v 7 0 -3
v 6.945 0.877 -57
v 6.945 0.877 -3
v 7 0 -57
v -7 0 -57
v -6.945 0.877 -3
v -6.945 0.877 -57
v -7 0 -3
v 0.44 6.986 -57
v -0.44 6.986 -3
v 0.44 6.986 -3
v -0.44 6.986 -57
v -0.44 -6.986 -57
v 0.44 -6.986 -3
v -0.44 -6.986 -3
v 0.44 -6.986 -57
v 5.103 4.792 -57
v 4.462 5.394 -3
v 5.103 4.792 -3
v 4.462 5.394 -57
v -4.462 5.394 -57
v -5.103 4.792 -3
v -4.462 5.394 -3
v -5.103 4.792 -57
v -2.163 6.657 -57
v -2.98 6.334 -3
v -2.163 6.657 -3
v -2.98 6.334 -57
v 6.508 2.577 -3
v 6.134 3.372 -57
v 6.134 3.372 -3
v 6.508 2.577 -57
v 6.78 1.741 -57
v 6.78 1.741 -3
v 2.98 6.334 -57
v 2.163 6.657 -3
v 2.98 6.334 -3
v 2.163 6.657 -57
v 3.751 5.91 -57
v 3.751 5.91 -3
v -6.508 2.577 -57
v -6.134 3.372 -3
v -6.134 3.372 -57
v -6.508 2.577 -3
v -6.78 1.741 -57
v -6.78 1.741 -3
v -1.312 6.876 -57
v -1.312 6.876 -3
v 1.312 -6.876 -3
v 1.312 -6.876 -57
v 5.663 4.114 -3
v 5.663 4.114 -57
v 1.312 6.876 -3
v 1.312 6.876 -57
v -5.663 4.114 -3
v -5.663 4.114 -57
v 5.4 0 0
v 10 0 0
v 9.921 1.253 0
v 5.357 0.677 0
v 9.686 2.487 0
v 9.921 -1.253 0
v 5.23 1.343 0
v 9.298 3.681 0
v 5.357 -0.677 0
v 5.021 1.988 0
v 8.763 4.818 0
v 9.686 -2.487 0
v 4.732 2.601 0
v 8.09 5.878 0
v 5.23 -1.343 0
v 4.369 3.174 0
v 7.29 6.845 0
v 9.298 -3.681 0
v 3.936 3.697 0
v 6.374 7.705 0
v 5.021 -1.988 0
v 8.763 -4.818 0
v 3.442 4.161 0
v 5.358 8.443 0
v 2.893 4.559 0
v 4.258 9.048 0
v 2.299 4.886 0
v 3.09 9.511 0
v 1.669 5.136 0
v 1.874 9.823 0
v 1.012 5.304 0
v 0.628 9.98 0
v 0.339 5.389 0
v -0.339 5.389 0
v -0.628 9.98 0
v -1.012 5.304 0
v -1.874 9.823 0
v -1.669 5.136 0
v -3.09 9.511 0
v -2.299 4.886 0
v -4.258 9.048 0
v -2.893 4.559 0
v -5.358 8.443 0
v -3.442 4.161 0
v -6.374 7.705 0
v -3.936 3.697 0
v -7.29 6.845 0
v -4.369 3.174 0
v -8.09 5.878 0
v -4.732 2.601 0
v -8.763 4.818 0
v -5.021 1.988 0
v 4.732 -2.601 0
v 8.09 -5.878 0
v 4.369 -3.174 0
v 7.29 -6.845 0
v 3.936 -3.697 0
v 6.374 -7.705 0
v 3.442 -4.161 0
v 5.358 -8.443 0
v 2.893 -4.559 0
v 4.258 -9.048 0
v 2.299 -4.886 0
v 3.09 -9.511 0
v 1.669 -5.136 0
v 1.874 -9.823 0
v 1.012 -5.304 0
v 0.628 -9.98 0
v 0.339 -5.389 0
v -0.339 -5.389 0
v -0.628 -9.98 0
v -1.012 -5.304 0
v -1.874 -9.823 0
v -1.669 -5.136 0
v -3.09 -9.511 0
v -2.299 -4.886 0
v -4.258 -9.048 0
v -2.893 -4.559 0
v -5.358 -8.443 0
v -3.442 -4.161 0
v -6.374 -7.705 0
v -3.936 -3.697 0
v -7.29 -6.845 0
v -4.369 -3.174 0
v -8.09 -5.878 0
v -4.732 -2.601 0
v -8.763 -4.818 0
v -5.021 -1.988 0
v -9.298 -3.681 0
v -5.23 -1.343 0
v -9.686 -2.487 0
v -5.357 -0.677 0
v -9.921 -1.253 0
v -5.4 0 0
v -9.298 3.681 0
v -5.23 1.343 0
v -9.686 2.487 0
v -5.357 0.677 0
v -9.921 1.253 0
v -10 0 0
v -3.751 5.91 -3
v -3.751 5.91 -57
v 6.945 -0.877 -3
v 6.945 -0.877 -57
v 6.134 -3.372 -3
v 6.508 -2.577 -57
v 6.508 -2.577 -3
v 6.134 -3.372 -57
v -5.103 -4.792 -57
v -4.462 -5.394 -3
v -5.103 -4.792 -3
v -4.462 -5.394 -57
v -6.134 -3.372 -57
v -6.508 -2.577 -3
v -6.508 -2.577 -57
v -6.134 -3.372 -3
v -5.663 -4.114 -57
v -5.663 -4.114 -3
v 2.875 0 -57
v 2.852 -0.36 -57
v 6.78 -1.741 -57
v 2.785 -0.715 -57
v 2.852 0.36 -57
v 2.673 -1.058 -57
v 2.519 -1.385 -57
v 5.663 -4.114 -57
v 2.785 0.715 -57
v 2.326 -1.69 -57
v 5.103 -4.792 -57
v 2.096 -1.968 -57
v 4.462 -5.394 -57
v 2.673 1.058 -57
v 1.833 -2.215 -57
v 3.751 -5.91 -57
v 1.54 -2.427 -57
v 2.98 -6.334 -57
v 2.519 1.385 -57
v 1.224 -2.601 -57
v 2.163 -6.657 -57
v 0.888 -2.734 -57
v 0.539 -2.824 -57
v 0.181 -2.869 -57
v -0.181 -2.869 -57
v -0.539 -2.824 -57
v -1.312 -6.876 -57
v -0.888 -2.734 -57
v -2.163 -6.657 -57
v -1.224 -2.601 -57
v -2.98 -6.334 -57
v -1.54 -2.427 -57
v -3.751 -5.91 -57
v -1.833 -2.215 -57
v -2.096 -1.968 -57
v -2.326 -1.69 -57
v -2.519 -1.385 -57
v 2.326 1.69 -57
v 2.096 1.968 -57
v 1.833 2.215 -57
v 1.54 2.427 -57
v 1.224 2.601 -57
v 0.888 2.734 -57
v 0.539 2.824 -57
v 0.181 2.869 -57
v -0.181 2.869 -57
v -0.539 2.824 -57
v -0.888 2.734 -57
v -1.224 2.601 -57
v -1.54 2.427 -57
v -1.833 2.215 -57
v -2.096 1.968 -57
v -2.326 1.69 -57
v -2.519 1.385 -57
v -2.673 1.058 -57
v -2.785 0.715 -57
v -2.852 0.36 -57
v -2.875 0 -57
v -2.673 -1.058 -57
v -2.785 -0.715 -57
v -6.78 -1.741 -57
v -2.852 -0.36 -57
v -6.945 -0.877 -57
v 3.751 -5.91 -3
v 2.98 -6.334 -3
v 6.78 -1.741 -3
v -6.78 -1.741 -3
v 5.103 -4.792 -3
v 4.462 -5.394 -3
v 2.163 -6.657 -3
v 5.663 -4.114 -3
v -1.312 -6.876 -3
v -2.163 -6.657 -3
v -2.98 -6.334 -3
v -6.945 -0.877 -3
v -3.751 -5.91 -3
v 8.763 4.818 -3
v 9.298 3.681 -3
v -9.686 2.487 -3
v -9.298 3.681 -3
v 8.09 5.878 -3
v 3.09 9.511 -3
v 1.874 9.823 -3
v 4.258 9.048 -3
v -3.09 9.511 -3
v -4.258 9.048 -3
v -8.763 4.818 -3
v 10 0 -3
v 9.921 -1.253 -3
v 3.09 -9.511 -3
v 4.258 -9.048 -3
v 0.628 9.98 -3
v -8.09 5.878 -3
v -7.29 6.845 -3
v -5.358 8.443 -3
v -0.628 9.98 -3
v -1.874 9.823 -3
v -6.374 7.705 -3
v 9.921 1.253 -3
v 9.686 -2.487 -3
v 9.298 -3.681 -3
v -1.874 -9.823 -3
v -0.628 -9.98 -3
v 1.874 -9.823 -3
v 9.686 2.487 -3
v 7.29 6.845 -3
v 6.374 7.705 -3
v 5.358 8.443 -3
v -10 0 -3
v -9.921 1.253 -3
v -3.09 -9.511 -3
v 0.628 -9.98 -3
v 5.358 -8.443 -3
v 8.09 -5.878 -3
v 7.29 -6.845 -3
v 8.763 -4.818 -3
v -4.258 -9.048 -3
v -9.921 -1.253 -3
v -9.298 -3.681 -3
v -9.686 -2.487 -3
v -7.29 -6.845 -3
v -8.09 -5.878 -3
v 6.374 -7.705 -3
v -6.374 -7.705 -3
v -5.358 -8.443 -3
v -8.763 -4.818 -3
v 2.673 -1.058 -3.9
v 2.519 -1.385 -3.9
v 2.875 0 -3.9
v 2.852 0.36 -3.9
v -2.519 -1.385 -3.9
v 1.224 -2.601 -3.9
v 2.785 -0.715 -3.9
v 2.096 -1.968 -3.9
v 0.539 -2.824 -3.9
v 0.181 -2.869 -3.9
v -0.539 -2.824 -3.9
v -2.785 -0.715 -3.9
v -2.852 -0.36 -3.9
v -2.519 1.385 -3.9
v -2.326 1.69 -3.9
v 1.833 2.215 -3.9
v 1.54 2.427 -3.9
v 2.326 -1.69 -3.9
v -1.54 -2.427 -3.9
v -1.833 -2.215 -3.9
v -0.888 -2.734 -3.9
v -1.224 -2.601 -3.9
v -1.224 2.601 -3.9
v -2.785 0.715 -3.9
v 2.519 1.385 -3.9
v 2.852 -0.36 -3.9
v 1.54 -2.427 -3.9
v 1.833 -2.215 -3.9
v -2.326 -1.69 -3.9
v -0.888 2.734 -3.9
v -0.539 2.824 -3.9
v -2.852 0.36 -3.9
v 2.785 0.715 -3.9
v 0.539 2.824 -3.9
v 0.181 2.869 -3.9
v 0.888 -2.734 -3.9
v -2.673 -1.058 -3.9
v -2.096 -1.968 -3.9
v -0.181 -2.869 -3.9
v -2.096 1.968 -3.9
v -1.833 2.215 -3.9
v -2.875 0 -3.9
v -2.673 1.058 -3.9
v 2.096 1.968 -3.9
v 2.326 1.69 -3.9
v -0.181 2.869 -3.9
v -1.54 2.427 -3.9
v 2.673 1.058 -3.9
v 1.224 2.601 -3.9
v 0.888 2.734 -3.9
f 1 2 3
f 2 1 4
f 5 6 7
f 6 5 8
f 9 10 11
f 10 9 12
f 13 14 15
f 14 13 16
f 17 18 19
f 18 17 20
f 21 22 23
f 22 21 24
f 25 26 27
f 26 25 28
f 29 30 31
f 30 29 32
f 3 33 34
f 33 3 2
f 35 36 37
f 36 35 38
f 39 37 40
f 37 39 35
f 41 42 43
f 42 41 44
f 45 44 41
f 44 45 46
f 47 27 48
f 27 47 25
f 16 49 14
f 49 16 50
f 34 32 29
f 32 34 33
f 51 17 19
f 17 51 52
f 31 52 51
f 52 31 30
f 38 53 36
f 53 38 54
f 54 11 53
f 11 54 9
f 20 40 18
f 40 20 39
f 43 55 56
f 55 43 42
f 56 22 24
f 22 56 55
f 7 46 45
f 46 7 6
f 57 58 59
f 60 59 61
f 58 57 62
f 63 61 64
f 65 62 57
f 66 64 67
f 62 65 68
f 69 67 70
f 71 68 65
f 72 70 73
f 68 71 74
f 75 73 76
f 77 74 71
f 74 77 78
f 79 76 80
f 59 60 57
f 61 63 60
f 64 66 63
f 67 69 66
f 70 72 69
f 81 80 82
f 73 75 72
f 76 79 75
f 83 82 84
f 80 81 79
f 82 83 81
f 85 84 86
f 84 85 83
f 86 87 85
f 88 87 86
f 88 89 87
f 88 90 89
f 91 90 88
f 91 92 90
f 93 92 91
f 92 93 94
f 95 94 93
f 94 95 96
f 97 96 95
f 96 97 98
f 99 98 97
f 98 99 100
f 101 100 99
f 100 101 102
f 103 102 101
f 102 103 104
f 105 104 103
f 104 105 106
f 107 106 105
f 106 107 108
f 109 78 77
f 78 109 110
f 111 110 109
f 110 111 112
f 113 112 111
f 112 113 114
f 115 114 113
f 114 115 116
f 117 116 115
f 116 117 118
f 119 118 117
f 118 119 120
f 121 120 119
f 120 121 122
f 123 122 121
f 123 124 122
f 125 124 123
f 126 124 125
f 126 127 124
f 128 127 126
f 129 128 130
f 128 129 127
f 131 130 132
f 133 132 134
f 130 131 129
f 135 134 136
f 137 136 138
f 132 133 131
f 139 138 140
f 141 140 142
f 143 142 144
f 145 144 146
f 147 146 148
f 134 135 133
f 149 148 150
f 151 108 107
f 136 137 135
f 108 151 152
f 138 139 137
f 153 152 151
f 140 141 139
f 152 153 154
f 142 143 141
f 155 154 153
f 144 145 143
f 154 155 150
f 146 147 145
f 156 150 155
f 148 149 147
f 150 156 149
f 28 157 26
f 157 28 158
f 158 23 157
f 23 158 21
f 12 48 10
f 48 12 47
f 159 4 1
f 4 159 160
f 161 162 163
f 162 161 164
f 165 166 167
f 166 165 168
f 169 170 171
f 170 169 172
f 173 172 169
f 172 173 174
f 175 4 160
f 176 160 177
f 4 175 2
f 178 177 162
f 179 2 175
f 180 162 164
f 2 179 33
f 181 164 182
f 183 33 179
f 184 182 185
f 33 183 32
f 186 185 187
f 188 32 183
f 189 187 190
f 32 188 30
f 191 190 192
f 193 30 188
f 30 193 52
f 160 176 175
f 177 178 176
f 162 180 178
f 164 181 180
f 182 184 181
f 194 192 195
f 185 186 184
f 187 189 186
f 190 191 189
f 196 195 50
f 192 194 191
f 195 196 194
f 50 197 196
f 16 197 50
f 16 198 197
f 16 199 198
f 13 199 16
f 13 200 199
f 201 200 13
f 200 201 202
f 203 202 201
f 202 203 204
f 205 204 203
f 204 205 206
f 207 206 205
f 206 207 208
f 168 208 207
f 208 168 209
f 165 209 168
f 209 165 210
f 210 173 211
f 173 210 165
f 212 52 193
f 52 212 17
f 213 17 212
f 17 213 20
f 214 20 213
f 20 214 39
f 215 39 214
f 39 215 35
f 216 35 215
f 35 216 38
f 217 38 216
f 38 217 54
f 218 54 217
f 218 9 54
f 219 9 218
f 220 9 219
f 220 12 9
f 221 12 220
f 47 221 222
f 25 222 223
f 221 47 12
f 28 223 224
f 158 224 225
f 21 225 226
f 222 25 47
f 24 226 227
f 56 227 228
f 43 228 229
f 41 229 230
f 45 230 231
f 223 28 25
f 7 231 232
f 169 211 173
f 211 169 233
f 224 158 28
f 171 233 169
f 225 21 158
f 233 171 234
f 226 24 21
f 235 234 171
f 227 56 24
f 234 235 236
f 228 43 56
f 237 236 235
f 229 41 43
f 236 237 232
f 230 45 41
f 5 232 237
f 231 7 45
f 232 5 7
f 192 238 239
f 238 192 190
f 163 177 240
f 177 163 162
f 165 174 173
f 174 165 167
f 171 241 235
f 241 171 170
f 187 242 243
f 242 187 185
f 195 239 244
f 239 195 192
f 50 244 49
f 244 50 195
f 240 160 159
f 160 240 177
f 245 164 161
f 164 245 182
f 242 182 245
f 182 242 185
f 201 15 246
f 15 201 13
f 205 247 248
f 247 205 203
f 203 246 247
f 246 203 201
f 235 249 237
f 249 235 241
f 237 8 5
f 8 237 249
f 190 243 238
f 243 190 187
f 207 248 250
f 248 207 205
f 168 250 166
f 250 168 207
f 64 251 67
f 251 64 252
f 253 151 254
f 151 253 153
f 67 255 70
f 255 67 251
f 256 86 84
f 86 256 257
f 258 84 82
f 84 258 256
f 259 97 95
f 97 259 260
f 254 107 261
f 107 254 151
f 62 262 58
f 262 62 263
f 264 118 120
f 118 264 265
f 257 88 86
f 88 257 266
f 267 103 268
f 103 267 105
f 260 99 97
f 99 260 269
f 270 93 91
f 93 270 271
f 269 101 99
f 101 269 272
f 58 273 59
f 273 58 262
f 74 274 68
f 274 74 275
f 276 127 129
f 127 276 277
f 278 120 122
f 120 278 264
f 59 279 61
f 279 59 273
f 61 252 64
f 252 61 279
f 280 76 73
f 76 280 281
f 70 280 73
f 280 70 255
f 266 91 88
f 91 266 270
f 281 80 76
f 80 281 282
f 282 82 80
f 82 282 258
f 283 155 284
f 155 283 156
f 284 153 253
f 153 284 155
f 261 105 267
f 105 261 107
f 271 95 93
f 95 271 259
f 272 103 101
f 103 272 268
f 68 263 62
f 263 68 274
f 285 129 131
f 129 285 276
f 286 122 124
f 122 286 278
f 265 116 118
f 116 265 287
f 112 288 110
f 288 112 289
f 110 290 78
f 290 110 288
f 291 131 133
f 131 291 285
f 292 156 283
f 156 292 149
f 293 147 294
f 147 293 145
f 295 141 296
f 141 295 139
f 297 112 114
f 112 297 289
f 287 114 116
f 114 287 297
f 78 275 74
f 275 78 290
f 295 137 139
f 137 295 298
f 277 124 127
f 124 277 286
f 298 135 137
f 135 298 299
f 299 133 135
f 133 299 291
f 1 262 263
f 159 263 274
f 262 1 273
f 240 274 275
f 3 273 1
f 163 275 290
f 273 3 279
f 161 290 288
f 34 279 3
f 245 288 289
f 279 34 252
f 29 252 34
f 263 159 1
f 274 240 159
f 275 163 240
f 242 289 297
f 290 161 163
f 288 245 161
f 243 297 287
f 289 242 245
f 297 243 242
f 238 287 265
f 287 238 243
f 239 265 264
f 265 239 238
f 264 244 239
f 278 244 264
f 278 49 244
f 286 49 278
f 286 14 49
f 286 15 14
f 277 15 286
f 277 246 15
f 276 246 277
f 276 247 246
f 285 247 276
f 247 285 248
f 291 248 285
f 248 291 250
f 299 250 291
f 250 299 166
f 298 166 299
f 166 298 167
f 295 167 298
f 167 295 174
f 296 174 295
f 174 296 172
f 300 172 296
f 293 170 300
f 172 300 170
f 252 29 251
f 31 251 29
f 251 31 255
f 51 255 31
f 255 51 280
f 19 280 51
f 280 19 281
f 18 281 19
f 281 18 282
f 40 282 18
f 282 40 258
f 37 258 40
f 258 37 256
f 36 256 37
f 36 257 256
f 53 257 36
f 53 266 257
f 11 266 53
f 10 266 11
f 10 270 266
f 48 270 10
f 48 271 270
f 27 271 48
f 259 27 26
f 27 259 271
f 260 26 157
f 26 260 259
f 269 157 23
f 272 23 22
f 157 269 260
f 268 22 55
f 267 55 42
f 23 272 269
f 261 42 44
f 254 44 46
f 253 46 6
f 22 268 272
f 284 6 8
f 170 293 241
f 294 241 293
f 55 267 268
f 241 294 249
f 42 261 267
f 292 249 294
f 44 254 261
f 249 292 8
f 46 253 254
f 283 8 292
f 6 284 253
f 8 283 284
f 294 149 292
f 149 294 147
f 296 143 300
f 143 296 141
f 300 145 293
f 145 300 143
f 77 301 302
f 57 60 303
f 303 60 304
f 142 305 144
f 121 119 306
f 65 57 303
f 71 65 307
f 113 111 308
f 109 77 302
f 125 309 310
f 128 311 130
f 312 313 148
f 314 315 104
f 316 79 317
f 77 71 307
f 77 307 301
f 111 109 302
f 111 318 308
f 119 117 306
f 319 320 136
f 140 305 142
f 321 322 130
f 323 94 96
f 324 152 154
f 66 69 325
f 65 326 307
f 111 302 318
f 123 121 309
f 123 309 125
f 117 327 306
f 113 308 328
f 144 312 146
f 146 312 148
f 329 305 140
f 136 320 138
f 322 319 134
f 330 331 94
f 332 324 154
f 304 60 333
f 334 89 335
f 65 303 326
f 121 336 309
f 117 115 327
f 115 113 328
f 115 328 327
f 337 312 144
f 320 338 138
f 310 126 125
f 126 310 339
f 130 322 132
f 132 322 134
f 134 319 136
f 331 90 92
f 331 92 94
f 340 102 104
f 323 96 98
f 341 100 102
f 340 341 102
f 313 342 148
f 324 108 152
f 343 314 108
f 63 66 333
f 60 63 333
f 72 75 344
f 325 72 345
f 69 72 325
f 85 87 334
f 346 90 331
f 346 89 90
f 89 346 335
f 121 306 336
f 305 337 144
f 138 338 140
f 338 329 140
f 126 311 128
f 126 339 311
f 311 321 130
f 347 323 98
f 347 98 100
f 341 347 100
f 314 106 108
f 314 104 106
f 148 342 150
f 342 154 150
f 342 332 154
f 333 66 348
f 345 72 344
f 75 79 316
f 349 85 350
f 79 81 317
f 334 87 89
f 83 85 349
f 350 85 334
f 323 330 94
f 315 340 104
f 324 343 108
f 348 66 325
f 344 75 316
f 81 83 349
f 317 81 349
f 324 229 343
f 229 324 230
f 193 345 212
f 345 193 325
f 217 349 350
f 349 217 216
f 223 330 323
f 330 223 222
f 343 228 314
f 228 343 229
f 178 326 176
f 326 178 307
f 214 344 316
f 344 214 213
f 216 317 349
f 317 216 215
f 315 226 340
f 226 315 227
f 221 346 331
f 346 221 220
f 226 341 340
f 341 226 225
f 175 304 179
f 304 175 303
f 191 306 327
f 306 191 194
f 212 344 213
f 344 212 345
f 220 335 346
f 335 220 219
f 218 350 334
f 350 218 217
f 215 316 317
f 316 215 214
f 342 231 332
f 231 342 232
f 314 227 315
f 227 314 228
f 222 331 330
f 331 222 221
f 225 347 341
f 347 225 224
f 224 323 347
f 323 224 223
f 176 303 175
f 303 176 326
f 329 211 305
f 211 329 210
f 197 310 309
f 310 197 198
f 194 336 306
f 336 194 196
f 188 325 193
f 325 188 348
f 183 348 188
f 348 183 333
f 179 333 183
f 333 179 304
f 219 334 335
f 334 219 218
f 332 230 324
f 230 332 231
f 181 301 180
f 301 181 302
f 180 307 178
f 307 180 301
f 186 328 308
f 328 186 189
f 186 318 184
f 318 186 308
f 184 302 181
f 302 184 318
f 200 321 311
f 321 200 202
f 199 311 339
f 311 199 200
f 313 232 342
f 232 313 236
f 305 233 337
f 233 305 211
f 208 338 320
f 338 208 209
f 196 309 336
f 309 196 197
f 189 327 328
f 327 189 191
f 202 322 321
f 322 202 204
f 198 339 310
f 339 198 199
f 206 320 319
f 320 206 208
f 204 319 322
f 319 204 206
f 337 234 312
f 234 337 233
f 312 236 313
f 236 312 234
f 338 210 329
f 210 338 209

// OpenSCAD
$fn = 50;


difference() {
	union() {
		translate(v = [0, 0, -57.0000000000]) {
			cylinder(h = 57, r = 7.0000000000);
		}
		translate(v = [0, 0, -3.0000000000]) {
			cylinder(h = 3, r = 10.0000000000);
		}
	}
	union() {
		translate(v = [0, 0, 0]) {
			rotate(a = [0, 0, 0]) {
				difference() {
					union() {
						#translate(v = [0, 0, -57.0000000000]) {
							cylinder(h = 57, r = 2.6000000000);
						}
						#translate(v = [0, 0, -3.9000000000]) {
							cylinder(h = 3.9000000000, r1 = 2.8750000000, r2 = 5.4000000000);
						}
						#translate(v = [0, 0, -57.0000000000]) {
							cylinder(h = 57, r = 2.8750000000);
						}
						#translate(v = [0, 0, -57.0000000000]) {
							cylinder(h = 57, r = 2.6000000000);
						}
					}
					union();
				}
			}
		}
	}
}
